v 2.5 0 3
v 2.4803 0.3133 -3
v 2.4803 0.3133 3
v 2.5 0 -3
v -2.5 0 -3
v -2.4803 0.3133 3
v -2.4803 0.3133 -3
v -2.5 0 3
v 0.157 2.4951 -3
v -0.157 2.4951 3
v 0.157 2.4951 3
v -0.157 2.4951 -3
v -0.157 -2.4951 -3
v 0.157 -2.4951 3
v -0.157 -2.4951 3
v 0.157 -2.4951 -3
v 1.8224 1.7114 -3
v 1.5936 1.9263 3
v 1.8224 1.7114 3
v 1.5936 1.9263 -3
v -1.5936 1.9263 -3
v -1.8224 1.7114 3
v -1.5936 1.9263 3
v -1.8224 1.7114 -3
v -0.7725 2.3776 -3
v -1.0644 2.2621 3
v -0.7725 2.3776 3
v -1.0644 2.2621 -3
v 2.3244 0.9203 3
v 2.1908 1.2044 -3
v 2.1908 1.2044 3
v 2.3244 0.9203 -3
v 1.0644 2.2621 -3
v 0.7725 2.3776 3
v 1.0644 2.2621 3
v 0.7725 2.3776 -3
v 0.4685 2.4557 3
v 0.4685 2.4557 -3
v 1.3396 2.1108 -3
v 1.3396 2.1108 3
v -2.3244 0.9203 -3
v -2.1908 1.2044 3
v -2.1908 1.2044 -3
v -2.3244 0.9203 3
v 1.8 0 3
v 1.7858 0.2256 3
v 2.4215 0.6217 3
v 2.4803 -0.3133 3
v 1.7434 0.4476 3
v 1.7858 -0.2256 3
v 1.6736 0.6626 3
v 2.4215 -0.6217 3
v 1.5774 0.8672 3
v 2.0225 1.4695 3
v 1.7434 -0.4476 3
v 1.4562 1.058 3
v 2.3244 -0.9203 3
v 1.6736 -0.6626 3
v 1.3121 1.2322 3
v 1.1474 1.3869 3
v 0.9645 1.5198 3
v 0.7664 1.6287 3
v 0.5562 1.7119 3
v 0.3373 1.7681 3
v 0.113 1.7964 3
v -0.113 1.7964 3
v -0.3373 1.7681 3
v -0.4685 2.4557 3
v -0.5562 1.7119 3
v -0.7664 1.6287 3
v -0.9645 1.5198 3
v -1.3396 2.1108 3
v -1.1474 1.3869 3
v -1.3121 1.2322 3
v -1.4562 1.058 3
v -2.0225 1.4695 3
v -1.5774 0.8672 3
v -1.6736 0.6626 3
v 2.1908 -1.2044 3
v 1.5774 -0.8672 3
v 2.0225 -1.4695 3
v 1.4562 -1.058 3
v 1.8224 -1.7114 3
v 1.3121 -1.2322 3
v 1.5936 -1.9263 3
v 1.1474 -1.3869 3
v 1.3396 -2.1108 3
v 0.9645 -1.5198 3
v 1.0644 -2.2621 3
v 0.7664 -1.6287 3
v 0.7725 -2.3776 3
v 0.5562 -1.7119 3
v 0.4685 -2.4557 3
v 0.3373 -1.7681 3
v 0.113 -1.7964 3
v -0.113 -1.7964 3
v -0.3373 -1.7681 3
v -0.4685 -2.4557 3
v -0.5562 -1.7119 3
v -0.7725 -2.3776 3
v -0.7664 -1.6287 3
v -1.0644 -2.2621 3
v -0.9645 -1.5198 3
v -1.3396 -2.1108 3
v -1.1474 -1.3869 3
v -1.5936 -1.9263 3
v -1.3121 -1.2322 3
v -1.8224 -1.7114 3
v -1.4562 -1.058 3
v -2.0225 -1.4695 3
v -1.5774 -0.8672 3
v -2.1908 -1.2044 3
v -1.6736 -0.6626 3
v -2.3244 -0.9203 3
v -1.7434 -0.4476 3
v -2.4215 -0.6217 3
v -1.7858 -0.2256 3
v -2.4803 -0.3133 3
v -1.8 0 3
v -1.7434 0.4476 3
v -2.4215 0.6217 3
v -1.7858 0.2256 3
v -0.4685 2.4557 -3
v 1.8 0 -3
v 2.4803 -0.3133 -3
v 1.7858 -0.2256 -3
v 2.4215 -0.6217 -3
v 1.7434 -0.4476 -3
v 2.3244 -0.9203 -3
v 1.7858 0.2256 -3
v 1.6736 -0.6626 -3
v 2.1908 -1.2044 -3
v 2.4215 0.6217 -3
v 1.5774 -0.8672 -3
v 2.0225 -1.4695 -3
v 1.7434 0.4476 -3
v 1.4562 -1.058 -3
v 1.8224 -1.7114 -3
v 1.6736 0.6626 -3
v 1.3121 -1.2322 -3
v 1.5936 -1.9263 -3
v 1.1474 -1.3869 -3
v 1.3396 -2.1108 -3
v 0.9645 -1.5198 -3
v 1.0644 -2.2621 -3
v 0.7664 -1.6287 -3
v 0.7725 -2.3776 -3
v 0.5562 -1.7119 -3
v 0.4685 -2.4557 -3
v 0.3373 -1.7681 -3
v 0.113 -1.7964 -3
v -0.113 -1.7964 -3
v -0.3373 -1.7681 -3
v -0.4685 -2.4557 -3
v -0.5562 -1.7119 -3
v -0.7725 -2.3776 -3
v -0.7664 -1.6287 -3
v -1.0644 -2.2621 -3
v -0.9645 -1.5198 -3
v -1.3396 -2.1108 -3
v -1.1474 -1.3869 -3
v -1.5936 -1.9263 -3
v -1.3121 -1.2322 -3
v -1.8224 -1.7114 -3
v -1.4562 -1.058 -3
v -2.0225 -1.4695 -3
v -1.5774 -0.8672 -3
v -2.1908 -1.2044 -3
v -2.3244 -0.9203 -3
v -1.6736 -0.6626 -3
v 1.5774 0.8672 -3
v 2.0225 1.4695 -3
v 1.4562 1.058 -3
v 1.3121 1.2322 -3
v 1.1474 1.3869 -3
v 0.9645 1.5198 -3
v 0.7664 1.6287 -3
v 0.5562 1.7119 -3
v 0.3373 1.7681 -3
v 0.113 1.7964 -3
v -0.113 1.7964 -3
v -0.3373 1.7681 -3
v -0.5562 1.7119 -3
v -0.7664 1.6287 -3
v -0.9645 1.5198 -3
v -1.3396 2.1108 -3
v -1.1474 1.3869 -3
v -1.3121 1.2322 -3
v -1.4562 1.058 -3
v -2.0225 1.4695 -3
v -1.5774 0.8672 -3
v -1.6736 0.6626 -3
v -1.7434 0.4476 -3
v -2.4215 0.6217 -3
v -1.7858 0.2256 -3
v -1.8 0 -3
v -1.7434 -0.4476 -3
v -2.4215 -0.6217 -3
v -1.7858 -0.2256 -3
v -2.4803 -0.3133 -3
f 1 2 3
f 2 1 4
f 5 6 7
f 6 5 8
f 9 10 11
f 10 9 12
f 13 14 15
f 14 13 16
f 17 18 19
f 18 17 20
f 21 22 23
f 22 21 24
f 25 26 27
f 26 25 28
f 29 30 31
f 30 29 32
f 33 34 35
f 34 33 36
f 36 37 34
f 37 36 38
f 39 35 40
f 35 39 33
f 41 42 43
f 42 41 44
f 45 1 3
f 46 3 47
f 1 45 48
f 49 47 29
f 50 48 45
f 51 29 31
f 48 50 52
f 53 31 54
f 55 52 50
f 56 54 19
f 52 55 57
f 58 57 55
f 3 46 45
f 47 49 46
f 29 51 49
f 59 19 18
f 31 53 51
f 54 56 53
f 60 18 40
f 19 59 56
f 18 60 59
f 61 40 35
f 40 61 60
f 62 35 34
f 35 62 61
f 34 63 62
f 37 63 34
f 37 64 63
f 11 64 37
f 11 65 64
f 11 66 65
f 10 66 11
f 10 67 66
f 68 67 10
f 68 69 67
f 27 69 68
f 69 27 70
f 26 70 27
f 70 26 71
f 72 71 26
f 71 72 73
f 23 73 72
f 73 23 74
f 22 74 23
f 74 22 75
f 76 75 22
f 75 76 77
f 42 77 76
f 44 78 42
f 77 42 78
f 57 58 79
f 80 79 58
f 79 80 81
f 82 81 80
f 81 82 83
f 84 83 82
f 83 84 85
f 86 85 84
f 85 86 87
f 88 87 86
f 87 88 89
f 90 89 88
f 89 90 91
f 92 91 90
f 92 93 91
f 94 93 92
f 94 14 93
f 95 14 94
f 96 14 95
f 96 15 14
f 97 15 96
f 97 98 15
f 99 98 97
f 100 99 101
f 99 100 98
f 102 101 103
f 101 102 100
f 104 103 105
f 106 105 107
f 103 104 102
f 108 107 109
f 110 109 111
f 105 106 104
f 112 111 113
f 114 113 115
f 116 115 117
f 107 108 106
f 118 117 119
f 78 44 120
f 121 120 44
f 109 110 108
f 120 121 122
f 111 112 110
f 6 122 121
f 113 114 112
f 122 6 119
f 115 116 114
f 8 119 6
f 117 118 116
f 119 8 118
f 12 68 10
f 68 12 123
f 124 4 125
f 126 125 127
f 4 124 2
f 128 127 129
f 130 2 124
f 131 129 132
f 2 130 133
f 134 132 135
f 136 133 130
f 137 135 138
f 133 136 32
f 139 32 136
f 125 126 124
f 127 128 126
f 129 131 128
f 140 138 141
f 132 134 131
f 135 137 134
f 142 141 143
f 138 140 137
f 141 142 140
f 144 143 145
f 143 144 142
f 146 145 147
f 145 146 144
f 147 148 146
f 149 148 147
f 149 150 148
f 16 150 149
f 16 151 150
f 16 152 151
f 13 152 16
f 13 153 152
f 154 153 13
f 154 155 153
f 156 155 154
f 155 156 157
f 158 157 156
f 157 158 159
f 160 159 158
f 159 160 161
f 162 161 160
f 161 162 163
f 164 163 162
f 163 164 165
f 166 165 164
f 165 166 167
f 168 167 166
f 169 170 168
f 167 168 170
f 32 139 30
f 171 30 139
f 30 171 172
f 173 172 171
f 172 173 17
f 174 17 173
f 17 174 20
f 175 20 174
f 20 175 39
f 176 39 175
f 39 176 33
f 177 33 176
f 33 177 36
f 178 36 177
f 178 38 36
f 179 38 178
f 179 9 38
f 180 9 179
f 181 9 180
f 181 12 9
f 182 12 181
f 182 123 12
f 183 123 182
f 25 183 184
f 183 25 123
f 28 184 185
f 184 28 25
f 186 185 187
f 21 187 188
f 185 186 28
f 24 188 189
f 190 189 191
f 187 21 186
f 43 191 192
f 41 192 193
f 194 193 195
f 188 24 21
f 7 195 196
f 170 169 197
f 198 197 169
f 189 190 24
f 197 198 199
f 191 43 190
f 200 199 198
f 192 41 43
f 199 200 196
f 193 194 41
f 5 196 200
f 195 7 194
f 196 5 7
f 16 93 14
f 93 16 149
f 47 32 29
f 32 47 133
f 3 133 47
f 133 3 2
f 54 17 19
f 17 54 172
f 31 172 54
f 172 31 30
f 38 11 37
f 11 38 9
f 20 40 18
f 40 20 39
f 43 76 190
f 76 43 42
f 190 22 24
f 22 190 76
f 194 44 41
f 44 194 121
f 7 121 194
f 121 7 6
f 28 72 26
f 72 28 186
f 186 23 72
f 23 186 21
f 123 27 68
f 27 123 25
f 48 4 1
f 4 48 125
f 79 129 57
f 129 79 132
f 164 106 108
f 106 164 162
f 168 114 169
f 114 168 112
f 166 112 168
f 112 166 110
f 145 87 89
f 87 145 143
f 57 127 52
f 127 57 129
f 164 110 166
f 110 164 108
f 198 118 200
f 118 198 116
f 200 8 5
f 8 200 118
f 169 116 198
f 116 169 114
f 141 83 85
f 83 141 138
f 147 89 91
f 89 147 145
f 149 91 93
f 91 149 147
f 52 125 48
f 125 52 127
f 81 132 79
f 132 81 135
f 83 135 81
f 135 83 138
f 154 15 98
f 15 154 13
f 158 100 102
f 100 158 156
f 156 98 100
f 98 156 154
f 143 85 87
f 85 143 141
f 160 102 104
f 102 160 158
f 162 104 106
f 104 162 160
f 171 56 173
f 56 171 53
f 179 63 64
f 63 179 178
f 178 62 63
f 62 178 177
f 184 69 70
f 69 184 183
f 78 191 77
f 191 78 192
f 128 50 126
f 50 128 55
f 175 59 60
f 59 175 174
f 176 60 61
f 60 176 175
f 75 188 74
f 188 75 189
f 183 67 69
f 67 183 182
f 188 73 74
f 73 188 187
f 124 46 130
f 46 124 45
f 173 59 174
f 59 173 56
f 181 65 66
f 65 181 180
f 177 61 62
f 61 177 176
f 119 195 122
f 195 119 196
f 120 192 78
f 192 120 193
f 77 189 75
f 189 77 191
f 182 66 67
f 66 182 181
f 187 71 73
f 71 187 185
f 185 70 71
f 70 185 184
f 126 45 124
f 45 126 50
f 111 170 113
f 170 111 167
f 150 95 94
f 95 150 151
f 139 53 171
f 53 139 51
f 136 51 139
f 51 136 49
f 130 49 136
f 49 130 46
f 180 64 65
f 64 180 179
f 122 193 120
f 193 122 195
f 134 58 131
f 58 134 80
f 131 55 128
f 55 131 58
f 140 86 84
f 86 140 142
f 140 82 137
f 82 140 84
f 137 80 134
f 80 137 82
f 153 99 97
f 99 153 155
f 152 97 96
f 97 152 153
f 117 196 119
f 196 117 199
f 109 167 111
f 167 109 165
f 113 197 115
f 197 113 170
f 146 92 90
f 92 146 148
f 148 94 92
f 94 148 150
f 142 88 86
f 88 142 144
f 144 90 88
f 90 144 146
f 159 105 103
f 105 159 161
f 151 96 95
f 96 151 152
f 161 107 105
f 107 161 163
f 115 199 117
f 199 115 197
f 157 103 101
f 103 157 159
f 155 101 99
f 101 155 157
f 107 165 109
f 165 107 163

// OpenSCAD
$fn = 50;


difference() {
	union() {
		translate(v = [0, 0, -3.0000000000]) {
			cylinder(h = 6, r = 2.5000000000);
		}
	}
	union() {
		translate(v = [0, 0, -100.0000000000]) {
			cylinder(h = 200, r = 1.8000000000);
		}
	}
}
